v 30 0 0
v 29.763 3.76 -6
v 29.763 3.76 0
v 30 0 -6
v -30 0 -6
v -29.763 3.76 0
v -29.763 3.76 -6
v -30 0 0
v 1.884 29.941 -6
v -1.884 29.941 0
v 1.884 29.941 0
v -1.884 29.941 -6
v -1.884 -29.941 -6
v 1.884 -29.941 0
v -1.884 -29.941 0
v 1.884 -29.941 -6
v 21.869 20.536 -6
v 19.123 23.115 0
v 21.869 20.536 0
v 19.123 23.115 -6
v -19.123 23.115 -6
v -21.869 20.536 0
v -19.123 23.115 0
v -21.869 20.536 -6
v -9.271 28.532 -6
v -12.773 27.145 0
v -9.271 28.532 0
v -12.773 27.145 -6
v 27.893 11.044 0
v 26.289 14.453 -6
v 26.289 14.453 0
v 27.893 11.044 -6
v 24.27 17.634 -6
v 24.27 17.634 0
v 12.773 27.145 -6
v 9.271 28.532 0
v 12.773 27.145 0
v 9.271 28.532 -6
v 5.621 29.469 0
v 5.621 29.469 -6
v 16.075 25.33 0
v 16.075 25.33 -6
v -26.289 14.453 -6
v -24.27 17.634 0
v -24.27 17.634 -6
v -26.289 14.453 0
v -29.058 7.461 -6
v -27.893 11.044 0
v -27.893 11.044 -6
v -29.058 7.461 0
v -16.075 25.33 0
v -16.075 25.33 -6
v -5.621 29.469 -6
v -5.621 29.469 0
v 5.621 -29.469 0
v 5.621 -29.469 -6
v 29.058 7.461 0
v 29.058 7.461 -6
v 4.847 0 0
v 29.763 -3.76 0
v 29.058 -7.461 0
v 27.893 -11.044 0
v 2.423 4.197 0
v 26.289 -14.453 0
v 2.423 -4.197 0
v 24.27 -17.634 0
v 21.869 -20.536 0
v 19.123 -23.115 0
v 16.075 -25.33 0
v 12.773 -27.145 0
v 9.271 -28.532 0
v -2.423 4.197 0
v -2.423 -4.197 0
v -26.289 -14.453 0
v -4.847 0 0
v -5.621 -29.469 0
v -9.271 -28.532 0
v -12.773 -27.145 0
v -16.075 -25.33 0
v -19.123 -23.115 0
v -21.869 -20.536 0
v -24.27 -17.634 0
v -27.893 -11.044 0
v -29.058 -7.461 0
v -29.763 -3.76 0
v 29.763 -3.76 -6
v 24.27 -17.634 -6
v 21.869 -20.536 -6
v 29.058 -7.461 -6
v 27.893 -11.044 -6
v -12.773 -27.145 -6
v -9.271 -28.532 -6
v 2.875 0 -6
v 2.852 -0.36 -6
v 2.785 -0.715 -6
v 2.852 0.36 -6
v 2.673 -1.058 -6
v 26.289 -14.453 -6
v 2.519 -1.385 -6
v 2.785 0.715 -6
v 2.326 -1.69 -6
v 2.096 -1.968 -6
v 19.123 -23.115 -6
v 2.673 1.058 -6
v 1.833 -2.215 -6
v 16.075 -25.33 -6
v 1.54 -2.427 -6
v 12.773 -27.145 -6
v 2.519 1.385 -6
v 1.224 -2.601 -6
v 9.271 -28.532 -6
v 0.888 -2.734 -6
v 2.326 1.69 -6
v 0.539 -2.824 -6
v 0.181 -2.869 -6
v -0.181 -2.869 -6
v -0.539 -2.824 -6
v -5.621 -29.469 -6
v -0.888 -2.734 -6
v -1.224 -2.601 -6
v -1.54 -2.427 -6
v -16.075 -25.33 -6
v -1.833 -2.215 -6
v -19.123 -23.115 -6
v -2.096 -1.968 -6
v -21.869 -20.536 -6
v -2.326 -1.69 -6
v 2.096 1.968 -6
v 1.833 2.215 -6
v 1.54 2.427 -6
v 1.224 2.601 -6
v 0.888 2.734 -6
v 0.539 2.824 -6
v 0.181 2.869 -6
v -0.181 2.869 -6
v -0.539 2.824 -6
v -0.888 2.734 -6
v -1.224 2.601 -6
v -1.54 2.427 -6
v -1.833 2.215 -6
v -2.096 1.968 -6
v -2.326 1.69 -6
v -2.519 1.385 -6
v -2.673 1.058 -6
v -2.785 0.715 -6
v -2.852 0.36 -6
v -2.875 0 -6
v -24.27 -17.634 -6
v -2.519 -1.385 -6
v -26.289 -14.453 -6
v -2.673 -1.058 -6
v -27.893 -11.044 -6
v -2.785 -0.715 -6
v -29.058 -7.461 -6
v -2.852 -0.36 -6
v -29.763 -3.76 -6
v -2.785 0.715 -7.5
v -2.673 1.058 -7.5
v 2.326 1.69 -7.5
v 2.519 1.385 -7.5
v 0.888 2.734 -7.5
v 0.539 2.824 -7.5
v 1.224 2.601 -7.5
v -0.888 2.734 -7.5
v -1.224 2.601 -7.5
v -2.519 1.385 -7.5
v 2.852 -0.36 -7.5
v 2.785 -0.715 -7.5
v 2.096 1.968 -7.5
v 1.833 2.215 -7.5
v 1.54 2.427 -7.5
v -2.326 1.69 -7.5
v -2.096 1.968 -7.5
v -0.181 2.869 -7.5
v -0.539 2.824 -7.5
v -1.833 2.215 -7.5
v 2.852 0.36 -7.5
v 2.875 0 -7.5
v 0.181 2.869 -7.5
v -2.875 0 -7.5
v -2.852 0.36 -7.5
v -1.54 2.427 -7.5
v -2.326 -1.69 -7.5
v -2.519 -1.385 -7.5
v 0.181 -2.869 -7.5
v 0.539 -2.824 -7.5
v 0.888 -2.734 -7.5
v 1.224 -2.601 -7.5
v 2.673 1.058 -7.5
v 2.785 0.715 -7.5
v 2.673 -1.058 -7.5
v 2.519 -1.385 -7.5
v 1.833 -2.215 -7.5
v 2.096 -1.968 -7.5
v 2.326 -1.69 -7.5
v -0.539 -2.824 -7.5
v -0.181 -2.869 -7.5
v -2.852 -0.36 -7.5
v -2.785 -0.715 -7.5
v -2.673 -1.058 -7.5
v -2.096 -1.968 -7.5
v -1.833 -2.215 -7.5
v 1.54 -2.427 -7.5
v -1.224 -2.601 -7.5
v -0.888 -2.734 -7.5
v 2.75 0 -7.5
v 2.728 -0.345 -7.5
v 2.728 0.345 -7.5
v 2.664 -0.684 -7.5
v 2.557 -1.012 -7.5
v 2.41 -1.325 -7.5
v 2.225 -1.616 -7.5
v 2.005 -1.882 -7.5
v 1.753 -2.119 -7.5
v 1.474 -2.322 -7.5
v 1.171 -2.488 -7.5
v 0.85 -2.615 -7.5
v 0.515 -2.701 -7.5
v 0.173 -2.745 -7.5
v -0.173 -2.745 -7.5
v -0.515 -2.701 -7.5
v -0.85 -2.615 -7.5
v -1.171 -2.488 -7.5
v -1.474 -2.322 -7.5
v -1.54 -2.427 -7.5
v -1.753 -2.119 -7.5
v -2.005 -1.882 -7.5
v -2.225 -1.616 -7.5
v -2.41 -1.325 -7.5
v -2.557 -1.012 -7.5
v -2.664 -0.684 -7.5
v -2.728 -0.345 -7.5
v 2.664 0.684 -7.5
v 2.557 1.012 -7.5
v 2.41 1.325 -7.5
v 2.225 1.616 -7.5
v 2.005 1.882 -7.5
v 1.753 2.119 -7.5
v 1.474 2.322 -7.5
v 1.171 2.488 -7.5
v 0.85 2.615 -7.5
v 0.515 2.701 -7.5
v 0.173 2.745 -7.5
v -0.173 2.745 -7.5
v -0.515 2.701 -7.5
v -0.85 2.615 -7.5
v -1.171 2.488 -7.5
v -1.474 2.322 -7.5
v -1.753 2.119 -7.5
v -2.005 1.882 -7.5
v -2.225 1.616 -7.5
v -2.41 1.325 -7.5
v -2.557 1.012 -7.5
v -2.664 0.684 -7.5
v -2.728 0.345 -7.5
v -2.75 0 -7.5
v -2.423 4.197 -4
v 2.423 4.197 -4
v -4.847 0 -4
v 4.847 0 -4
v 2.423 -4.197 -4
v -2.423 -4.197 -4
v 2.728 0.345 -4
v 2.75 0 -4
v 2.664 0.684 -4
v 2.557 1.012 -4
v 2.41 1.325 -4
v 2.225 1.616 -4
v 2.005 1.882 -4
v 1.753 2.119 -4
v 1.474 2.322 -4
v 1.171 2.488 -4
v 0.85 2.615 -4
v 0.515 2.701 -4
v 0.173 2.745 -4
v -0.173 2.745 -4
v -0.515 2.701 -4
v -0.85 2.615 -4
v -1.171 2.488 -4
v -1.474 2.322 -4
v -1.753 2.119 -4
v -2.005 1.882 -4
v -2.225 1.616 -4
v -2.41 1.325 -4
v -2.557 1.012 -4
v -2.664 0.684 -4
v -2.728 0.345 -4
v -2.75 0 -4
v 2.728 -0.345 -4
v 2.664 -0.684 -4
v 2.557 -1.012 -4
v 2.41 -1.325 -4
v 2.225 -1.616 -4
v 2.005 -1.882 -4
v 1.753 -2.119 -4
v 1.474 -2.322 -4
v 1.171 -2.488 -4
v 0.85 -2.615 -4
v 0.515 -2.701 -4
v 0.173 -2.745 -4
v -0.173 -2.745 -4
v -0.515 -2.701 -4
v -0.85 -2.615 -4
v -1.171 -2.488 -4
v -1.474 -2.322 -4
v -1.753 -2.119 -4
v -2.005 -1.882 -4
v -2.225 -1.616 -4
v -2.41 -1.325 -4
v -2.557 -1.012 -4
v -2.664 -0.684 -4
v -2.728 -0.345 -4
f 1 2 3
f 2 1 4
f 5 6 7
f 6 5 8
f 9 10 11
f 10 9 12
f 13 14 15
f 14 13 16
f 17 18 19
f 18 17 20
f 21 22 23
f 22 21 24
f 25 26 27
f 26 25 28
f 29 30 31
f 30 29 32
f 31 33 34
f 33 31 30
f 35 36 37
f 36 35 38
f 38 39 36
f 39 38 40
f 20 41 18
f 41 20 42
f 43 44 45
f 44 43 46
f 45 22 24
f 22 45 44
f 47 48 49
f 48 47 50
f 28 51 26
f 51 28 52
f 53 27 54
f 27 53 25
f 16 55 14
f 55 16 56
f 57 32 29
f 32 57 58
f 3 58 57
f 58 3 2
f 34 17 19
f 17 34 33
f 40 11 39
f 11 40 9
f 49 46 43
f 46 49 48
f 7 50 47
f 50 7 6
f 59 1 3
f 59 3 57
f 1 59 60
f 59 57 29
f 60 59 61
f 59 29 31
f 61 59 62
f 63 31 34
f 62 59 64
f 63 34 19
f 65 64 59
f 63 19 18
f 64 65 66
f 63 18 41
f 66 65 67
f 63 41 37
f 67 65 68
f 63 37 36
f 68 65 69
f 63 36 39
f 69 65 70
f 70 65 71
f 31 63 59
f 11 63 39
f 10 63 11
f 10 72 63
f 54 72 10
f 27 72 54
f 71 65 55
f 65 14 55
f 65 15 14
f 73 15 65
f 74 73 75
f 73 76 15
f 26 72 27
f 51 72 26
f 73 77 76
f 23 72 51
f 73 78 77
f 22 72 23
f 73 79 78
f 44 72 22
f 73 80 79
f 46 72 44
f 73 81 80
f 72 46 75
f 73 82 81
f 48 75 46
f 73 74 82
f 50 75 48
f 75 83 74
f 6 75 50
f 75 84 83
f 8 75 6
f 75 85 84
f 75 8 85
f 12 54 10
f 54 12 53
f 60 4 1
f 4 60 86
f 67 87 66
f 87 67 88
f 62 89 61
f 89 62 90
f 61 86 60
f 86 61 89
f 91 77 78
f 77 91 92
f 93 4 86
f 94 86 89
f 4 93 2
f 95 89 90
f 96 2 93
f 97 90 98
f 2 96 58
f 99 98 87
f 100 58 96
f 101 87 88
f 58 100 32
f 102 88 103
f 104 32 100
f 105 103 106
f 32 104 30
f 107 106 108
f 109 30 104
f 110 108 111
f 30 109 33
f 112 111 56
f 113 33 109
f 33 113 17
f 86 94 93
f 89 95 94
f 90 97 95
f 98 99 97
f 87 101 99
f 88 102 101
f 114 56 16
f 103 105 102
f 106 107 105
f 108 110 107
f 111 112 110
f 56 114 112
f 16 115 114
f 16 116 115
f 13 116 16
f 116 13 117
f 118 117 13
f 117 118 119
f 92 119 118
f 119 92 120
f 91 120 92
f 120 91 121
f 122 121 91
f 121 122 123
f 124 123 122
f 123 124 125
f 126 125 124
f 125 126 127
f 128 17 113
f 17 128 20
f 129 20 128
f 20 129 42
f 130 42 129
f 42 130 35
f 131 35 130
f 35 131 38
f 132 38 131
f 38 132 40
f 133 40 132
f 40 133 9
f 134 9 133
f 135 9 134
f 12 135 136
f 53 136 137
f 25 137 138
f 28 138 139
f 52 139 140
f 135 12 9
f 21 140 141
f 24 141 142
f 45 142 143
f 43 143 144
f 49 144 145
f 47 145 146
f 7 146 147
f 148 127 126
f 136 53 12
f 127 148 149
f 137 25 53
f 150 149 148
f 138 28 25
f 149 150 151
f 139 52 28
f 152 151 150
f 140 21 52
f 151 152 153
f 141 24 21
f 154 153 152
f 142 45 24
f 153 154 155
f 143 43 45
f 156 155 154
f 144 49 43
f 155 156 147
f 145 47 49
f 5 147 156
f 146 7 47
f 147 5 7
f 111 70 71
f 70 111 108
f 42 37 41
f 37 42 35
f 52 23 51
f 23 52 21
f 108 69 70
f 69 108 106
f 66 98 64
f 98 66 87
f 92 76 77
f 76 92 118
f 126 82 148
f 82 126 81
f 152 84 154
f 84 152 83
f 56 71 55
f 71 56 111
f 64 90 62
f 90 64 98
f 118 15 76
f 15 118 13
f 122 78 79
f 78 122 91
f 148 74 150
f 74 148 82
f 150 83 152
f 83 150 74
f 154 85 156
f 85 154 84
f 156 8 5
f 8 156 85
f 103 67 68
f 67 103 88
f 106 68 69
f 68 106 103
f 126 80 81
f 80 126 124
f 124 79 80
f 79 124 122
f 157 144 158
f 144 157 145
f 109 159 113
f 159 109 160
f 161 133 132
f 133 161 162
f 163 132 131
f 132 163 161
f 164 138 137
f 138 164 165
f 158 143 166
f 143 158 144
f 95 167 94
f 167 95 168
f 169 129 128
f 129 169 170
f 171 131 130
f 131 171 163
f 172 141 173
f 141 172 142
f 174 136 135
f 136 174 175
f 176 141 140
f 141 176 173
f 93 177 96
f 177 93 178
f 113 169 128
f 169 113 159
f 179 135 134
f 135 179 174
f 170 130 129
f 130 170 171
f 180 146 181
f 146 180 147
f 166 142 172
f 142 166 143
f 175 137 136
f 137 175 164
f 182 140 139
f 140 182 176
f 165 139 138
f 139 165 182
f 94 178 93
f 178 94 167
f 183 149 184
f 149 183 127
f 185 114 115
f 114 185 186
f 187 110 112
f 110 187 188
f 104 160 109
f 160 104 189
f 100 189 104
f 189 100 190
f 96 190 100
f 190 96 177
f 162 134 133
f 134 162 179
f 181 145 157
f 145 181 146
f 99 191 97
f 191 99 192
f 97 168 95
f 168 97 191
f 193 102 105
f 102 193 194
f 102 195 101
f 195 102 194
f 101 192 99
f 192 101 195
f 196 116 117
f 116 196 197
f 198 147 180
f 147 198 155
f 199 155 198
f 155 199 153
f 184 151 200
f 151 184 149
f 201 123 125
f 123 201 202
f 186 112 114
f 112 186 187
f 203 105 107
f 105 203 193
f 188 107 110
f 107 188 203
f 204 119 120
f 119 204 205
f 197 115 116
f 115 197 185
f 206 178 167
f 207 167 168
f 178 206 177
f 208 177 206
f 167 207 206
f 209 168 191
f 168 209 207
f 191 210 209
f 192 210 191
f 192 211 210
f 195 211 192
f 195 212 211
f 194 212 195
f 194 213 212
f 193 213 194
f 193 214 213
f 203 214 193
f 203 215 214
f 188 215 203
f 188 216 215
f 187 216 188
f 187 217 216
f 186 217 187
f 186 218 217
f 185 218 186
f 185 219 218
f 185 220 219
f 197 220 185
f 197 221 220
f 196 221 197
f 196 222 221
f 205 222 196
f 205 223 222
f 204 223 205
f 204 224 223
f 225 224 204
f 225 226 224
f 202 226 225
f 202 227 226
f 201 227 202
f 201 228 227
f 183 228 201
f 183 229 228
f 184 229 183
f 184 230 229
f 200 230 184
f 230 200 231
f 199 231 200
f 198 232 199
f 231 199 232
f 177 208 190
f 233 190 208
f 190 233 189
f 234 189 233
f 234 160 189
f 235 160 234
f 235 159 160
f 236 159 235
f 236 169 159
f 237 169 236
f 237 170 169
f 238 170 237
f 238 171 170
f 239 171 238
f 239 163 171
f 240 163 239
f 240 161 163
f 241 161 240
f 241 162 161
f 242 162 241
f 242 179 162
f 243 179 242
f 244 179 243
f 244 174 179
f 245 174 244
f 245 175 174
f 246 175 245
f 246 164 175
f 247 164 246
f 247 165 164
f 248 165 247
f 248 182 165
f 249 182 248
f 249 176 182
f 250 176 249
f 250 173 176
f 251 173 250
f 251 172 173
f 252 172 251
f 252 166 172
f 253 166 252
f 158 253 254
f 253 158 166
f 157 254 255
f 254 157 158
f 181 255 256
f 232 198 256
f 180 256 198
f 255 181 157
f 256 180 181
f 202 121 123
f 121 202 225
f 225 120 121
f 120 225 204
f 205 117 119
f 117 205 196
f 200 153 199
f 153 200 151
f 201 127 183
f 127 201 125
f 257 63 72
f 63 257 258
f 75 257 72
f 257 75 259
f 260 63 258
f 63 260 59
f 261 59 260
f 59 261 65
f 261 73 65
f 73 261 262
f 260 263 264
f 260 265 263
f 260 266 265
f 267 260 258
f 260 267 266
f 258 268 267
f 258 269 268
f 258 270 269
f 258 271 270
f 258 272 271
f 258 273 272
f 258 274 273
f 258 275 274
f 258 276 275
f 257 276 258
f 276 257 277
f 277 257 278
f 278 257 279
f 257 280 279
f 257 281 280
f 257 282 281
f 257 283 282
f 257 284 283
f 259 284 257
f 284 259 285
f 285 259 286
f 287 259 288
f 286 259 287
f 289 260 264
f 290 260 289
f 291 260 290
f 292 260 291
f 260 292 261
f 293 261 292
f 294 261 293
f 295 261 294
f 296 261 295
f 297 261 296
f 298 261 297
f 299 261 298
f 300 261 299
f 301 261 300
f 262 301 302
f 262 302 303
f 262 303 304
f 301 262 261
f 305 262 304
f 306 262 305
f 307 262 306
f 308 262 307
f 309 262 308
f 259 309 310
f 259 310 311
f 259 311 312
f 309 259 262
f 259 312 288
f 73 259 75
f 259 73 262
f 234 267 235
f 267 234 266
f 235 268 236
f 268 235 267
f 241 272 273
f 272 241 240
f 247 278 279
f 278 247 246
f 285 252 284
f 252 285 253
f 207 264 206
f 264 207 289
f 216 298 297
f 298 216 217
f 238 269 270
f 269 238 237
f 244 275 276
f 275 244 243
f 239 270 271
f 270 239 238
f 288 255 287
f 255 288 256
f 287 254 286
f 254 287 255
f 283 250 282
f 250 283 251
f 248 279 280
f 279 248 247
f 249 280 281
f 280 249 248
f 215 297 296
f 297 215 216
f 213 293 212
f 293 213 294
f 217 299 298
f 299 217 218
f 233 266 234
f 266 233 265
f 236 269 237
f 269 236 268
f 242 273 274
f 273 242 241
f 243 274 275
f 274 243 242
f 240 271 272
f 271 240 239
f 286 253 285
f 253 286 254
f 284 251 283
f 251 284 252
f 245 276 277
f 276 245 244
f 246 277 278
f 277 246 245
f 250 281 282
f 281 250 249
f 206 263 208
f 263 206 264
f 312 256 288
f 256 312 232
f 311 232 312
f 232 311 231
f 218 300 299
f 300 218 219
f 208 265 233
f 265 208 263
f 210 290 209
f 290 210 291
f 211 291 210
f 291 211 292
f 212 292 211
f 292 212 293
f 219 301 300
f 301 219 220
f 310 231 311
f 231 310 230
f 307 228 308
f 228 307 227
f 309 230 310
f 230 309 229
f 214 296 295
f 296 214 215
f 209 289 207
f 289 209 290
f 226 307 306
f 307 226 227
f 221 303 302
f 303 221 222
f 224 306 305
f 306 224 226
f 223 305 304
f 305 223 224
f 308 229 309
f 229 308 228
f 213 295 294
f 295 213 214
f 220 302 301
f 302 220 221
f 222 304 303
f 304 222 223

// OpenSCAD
$fn = 50;


difference() {
	union() {
		translate(v = [0, 0, -6.0000000000]) {
			cylinder(h = 6.0000000000, r = 30.0000000000);
		}
		#translate(v = [0, 0, -7.5000000000]) {
			cylinder(h = 7.5000000000, r = 2.8750000000);
		}
	}
	union() {
		translate(v = [0, 0, 0]) {
			rotate(a = [0, 0, 0]) {
				difference() {
					union() {
						translate(v = [0, 0, -4]) {
							linear_extrude(height = 4) {
								polygon(points = [[4.8468000000, 0.0000000000], [2.4234000000, 4.1974519271], [-2.4234000000, 4.1974519271], [-4.8468000000, 0.0000000000], [-2.4234000000, -4.1974519271], [2.4234000000, -4.1974519271]]);
							}
						}
					}
					union();
				}
			}
		}
		#translate(v = [0, 0, -100.0000000000]) {
			cylinder(h = 200, r = 2.7500000000);
		}
	}
}
